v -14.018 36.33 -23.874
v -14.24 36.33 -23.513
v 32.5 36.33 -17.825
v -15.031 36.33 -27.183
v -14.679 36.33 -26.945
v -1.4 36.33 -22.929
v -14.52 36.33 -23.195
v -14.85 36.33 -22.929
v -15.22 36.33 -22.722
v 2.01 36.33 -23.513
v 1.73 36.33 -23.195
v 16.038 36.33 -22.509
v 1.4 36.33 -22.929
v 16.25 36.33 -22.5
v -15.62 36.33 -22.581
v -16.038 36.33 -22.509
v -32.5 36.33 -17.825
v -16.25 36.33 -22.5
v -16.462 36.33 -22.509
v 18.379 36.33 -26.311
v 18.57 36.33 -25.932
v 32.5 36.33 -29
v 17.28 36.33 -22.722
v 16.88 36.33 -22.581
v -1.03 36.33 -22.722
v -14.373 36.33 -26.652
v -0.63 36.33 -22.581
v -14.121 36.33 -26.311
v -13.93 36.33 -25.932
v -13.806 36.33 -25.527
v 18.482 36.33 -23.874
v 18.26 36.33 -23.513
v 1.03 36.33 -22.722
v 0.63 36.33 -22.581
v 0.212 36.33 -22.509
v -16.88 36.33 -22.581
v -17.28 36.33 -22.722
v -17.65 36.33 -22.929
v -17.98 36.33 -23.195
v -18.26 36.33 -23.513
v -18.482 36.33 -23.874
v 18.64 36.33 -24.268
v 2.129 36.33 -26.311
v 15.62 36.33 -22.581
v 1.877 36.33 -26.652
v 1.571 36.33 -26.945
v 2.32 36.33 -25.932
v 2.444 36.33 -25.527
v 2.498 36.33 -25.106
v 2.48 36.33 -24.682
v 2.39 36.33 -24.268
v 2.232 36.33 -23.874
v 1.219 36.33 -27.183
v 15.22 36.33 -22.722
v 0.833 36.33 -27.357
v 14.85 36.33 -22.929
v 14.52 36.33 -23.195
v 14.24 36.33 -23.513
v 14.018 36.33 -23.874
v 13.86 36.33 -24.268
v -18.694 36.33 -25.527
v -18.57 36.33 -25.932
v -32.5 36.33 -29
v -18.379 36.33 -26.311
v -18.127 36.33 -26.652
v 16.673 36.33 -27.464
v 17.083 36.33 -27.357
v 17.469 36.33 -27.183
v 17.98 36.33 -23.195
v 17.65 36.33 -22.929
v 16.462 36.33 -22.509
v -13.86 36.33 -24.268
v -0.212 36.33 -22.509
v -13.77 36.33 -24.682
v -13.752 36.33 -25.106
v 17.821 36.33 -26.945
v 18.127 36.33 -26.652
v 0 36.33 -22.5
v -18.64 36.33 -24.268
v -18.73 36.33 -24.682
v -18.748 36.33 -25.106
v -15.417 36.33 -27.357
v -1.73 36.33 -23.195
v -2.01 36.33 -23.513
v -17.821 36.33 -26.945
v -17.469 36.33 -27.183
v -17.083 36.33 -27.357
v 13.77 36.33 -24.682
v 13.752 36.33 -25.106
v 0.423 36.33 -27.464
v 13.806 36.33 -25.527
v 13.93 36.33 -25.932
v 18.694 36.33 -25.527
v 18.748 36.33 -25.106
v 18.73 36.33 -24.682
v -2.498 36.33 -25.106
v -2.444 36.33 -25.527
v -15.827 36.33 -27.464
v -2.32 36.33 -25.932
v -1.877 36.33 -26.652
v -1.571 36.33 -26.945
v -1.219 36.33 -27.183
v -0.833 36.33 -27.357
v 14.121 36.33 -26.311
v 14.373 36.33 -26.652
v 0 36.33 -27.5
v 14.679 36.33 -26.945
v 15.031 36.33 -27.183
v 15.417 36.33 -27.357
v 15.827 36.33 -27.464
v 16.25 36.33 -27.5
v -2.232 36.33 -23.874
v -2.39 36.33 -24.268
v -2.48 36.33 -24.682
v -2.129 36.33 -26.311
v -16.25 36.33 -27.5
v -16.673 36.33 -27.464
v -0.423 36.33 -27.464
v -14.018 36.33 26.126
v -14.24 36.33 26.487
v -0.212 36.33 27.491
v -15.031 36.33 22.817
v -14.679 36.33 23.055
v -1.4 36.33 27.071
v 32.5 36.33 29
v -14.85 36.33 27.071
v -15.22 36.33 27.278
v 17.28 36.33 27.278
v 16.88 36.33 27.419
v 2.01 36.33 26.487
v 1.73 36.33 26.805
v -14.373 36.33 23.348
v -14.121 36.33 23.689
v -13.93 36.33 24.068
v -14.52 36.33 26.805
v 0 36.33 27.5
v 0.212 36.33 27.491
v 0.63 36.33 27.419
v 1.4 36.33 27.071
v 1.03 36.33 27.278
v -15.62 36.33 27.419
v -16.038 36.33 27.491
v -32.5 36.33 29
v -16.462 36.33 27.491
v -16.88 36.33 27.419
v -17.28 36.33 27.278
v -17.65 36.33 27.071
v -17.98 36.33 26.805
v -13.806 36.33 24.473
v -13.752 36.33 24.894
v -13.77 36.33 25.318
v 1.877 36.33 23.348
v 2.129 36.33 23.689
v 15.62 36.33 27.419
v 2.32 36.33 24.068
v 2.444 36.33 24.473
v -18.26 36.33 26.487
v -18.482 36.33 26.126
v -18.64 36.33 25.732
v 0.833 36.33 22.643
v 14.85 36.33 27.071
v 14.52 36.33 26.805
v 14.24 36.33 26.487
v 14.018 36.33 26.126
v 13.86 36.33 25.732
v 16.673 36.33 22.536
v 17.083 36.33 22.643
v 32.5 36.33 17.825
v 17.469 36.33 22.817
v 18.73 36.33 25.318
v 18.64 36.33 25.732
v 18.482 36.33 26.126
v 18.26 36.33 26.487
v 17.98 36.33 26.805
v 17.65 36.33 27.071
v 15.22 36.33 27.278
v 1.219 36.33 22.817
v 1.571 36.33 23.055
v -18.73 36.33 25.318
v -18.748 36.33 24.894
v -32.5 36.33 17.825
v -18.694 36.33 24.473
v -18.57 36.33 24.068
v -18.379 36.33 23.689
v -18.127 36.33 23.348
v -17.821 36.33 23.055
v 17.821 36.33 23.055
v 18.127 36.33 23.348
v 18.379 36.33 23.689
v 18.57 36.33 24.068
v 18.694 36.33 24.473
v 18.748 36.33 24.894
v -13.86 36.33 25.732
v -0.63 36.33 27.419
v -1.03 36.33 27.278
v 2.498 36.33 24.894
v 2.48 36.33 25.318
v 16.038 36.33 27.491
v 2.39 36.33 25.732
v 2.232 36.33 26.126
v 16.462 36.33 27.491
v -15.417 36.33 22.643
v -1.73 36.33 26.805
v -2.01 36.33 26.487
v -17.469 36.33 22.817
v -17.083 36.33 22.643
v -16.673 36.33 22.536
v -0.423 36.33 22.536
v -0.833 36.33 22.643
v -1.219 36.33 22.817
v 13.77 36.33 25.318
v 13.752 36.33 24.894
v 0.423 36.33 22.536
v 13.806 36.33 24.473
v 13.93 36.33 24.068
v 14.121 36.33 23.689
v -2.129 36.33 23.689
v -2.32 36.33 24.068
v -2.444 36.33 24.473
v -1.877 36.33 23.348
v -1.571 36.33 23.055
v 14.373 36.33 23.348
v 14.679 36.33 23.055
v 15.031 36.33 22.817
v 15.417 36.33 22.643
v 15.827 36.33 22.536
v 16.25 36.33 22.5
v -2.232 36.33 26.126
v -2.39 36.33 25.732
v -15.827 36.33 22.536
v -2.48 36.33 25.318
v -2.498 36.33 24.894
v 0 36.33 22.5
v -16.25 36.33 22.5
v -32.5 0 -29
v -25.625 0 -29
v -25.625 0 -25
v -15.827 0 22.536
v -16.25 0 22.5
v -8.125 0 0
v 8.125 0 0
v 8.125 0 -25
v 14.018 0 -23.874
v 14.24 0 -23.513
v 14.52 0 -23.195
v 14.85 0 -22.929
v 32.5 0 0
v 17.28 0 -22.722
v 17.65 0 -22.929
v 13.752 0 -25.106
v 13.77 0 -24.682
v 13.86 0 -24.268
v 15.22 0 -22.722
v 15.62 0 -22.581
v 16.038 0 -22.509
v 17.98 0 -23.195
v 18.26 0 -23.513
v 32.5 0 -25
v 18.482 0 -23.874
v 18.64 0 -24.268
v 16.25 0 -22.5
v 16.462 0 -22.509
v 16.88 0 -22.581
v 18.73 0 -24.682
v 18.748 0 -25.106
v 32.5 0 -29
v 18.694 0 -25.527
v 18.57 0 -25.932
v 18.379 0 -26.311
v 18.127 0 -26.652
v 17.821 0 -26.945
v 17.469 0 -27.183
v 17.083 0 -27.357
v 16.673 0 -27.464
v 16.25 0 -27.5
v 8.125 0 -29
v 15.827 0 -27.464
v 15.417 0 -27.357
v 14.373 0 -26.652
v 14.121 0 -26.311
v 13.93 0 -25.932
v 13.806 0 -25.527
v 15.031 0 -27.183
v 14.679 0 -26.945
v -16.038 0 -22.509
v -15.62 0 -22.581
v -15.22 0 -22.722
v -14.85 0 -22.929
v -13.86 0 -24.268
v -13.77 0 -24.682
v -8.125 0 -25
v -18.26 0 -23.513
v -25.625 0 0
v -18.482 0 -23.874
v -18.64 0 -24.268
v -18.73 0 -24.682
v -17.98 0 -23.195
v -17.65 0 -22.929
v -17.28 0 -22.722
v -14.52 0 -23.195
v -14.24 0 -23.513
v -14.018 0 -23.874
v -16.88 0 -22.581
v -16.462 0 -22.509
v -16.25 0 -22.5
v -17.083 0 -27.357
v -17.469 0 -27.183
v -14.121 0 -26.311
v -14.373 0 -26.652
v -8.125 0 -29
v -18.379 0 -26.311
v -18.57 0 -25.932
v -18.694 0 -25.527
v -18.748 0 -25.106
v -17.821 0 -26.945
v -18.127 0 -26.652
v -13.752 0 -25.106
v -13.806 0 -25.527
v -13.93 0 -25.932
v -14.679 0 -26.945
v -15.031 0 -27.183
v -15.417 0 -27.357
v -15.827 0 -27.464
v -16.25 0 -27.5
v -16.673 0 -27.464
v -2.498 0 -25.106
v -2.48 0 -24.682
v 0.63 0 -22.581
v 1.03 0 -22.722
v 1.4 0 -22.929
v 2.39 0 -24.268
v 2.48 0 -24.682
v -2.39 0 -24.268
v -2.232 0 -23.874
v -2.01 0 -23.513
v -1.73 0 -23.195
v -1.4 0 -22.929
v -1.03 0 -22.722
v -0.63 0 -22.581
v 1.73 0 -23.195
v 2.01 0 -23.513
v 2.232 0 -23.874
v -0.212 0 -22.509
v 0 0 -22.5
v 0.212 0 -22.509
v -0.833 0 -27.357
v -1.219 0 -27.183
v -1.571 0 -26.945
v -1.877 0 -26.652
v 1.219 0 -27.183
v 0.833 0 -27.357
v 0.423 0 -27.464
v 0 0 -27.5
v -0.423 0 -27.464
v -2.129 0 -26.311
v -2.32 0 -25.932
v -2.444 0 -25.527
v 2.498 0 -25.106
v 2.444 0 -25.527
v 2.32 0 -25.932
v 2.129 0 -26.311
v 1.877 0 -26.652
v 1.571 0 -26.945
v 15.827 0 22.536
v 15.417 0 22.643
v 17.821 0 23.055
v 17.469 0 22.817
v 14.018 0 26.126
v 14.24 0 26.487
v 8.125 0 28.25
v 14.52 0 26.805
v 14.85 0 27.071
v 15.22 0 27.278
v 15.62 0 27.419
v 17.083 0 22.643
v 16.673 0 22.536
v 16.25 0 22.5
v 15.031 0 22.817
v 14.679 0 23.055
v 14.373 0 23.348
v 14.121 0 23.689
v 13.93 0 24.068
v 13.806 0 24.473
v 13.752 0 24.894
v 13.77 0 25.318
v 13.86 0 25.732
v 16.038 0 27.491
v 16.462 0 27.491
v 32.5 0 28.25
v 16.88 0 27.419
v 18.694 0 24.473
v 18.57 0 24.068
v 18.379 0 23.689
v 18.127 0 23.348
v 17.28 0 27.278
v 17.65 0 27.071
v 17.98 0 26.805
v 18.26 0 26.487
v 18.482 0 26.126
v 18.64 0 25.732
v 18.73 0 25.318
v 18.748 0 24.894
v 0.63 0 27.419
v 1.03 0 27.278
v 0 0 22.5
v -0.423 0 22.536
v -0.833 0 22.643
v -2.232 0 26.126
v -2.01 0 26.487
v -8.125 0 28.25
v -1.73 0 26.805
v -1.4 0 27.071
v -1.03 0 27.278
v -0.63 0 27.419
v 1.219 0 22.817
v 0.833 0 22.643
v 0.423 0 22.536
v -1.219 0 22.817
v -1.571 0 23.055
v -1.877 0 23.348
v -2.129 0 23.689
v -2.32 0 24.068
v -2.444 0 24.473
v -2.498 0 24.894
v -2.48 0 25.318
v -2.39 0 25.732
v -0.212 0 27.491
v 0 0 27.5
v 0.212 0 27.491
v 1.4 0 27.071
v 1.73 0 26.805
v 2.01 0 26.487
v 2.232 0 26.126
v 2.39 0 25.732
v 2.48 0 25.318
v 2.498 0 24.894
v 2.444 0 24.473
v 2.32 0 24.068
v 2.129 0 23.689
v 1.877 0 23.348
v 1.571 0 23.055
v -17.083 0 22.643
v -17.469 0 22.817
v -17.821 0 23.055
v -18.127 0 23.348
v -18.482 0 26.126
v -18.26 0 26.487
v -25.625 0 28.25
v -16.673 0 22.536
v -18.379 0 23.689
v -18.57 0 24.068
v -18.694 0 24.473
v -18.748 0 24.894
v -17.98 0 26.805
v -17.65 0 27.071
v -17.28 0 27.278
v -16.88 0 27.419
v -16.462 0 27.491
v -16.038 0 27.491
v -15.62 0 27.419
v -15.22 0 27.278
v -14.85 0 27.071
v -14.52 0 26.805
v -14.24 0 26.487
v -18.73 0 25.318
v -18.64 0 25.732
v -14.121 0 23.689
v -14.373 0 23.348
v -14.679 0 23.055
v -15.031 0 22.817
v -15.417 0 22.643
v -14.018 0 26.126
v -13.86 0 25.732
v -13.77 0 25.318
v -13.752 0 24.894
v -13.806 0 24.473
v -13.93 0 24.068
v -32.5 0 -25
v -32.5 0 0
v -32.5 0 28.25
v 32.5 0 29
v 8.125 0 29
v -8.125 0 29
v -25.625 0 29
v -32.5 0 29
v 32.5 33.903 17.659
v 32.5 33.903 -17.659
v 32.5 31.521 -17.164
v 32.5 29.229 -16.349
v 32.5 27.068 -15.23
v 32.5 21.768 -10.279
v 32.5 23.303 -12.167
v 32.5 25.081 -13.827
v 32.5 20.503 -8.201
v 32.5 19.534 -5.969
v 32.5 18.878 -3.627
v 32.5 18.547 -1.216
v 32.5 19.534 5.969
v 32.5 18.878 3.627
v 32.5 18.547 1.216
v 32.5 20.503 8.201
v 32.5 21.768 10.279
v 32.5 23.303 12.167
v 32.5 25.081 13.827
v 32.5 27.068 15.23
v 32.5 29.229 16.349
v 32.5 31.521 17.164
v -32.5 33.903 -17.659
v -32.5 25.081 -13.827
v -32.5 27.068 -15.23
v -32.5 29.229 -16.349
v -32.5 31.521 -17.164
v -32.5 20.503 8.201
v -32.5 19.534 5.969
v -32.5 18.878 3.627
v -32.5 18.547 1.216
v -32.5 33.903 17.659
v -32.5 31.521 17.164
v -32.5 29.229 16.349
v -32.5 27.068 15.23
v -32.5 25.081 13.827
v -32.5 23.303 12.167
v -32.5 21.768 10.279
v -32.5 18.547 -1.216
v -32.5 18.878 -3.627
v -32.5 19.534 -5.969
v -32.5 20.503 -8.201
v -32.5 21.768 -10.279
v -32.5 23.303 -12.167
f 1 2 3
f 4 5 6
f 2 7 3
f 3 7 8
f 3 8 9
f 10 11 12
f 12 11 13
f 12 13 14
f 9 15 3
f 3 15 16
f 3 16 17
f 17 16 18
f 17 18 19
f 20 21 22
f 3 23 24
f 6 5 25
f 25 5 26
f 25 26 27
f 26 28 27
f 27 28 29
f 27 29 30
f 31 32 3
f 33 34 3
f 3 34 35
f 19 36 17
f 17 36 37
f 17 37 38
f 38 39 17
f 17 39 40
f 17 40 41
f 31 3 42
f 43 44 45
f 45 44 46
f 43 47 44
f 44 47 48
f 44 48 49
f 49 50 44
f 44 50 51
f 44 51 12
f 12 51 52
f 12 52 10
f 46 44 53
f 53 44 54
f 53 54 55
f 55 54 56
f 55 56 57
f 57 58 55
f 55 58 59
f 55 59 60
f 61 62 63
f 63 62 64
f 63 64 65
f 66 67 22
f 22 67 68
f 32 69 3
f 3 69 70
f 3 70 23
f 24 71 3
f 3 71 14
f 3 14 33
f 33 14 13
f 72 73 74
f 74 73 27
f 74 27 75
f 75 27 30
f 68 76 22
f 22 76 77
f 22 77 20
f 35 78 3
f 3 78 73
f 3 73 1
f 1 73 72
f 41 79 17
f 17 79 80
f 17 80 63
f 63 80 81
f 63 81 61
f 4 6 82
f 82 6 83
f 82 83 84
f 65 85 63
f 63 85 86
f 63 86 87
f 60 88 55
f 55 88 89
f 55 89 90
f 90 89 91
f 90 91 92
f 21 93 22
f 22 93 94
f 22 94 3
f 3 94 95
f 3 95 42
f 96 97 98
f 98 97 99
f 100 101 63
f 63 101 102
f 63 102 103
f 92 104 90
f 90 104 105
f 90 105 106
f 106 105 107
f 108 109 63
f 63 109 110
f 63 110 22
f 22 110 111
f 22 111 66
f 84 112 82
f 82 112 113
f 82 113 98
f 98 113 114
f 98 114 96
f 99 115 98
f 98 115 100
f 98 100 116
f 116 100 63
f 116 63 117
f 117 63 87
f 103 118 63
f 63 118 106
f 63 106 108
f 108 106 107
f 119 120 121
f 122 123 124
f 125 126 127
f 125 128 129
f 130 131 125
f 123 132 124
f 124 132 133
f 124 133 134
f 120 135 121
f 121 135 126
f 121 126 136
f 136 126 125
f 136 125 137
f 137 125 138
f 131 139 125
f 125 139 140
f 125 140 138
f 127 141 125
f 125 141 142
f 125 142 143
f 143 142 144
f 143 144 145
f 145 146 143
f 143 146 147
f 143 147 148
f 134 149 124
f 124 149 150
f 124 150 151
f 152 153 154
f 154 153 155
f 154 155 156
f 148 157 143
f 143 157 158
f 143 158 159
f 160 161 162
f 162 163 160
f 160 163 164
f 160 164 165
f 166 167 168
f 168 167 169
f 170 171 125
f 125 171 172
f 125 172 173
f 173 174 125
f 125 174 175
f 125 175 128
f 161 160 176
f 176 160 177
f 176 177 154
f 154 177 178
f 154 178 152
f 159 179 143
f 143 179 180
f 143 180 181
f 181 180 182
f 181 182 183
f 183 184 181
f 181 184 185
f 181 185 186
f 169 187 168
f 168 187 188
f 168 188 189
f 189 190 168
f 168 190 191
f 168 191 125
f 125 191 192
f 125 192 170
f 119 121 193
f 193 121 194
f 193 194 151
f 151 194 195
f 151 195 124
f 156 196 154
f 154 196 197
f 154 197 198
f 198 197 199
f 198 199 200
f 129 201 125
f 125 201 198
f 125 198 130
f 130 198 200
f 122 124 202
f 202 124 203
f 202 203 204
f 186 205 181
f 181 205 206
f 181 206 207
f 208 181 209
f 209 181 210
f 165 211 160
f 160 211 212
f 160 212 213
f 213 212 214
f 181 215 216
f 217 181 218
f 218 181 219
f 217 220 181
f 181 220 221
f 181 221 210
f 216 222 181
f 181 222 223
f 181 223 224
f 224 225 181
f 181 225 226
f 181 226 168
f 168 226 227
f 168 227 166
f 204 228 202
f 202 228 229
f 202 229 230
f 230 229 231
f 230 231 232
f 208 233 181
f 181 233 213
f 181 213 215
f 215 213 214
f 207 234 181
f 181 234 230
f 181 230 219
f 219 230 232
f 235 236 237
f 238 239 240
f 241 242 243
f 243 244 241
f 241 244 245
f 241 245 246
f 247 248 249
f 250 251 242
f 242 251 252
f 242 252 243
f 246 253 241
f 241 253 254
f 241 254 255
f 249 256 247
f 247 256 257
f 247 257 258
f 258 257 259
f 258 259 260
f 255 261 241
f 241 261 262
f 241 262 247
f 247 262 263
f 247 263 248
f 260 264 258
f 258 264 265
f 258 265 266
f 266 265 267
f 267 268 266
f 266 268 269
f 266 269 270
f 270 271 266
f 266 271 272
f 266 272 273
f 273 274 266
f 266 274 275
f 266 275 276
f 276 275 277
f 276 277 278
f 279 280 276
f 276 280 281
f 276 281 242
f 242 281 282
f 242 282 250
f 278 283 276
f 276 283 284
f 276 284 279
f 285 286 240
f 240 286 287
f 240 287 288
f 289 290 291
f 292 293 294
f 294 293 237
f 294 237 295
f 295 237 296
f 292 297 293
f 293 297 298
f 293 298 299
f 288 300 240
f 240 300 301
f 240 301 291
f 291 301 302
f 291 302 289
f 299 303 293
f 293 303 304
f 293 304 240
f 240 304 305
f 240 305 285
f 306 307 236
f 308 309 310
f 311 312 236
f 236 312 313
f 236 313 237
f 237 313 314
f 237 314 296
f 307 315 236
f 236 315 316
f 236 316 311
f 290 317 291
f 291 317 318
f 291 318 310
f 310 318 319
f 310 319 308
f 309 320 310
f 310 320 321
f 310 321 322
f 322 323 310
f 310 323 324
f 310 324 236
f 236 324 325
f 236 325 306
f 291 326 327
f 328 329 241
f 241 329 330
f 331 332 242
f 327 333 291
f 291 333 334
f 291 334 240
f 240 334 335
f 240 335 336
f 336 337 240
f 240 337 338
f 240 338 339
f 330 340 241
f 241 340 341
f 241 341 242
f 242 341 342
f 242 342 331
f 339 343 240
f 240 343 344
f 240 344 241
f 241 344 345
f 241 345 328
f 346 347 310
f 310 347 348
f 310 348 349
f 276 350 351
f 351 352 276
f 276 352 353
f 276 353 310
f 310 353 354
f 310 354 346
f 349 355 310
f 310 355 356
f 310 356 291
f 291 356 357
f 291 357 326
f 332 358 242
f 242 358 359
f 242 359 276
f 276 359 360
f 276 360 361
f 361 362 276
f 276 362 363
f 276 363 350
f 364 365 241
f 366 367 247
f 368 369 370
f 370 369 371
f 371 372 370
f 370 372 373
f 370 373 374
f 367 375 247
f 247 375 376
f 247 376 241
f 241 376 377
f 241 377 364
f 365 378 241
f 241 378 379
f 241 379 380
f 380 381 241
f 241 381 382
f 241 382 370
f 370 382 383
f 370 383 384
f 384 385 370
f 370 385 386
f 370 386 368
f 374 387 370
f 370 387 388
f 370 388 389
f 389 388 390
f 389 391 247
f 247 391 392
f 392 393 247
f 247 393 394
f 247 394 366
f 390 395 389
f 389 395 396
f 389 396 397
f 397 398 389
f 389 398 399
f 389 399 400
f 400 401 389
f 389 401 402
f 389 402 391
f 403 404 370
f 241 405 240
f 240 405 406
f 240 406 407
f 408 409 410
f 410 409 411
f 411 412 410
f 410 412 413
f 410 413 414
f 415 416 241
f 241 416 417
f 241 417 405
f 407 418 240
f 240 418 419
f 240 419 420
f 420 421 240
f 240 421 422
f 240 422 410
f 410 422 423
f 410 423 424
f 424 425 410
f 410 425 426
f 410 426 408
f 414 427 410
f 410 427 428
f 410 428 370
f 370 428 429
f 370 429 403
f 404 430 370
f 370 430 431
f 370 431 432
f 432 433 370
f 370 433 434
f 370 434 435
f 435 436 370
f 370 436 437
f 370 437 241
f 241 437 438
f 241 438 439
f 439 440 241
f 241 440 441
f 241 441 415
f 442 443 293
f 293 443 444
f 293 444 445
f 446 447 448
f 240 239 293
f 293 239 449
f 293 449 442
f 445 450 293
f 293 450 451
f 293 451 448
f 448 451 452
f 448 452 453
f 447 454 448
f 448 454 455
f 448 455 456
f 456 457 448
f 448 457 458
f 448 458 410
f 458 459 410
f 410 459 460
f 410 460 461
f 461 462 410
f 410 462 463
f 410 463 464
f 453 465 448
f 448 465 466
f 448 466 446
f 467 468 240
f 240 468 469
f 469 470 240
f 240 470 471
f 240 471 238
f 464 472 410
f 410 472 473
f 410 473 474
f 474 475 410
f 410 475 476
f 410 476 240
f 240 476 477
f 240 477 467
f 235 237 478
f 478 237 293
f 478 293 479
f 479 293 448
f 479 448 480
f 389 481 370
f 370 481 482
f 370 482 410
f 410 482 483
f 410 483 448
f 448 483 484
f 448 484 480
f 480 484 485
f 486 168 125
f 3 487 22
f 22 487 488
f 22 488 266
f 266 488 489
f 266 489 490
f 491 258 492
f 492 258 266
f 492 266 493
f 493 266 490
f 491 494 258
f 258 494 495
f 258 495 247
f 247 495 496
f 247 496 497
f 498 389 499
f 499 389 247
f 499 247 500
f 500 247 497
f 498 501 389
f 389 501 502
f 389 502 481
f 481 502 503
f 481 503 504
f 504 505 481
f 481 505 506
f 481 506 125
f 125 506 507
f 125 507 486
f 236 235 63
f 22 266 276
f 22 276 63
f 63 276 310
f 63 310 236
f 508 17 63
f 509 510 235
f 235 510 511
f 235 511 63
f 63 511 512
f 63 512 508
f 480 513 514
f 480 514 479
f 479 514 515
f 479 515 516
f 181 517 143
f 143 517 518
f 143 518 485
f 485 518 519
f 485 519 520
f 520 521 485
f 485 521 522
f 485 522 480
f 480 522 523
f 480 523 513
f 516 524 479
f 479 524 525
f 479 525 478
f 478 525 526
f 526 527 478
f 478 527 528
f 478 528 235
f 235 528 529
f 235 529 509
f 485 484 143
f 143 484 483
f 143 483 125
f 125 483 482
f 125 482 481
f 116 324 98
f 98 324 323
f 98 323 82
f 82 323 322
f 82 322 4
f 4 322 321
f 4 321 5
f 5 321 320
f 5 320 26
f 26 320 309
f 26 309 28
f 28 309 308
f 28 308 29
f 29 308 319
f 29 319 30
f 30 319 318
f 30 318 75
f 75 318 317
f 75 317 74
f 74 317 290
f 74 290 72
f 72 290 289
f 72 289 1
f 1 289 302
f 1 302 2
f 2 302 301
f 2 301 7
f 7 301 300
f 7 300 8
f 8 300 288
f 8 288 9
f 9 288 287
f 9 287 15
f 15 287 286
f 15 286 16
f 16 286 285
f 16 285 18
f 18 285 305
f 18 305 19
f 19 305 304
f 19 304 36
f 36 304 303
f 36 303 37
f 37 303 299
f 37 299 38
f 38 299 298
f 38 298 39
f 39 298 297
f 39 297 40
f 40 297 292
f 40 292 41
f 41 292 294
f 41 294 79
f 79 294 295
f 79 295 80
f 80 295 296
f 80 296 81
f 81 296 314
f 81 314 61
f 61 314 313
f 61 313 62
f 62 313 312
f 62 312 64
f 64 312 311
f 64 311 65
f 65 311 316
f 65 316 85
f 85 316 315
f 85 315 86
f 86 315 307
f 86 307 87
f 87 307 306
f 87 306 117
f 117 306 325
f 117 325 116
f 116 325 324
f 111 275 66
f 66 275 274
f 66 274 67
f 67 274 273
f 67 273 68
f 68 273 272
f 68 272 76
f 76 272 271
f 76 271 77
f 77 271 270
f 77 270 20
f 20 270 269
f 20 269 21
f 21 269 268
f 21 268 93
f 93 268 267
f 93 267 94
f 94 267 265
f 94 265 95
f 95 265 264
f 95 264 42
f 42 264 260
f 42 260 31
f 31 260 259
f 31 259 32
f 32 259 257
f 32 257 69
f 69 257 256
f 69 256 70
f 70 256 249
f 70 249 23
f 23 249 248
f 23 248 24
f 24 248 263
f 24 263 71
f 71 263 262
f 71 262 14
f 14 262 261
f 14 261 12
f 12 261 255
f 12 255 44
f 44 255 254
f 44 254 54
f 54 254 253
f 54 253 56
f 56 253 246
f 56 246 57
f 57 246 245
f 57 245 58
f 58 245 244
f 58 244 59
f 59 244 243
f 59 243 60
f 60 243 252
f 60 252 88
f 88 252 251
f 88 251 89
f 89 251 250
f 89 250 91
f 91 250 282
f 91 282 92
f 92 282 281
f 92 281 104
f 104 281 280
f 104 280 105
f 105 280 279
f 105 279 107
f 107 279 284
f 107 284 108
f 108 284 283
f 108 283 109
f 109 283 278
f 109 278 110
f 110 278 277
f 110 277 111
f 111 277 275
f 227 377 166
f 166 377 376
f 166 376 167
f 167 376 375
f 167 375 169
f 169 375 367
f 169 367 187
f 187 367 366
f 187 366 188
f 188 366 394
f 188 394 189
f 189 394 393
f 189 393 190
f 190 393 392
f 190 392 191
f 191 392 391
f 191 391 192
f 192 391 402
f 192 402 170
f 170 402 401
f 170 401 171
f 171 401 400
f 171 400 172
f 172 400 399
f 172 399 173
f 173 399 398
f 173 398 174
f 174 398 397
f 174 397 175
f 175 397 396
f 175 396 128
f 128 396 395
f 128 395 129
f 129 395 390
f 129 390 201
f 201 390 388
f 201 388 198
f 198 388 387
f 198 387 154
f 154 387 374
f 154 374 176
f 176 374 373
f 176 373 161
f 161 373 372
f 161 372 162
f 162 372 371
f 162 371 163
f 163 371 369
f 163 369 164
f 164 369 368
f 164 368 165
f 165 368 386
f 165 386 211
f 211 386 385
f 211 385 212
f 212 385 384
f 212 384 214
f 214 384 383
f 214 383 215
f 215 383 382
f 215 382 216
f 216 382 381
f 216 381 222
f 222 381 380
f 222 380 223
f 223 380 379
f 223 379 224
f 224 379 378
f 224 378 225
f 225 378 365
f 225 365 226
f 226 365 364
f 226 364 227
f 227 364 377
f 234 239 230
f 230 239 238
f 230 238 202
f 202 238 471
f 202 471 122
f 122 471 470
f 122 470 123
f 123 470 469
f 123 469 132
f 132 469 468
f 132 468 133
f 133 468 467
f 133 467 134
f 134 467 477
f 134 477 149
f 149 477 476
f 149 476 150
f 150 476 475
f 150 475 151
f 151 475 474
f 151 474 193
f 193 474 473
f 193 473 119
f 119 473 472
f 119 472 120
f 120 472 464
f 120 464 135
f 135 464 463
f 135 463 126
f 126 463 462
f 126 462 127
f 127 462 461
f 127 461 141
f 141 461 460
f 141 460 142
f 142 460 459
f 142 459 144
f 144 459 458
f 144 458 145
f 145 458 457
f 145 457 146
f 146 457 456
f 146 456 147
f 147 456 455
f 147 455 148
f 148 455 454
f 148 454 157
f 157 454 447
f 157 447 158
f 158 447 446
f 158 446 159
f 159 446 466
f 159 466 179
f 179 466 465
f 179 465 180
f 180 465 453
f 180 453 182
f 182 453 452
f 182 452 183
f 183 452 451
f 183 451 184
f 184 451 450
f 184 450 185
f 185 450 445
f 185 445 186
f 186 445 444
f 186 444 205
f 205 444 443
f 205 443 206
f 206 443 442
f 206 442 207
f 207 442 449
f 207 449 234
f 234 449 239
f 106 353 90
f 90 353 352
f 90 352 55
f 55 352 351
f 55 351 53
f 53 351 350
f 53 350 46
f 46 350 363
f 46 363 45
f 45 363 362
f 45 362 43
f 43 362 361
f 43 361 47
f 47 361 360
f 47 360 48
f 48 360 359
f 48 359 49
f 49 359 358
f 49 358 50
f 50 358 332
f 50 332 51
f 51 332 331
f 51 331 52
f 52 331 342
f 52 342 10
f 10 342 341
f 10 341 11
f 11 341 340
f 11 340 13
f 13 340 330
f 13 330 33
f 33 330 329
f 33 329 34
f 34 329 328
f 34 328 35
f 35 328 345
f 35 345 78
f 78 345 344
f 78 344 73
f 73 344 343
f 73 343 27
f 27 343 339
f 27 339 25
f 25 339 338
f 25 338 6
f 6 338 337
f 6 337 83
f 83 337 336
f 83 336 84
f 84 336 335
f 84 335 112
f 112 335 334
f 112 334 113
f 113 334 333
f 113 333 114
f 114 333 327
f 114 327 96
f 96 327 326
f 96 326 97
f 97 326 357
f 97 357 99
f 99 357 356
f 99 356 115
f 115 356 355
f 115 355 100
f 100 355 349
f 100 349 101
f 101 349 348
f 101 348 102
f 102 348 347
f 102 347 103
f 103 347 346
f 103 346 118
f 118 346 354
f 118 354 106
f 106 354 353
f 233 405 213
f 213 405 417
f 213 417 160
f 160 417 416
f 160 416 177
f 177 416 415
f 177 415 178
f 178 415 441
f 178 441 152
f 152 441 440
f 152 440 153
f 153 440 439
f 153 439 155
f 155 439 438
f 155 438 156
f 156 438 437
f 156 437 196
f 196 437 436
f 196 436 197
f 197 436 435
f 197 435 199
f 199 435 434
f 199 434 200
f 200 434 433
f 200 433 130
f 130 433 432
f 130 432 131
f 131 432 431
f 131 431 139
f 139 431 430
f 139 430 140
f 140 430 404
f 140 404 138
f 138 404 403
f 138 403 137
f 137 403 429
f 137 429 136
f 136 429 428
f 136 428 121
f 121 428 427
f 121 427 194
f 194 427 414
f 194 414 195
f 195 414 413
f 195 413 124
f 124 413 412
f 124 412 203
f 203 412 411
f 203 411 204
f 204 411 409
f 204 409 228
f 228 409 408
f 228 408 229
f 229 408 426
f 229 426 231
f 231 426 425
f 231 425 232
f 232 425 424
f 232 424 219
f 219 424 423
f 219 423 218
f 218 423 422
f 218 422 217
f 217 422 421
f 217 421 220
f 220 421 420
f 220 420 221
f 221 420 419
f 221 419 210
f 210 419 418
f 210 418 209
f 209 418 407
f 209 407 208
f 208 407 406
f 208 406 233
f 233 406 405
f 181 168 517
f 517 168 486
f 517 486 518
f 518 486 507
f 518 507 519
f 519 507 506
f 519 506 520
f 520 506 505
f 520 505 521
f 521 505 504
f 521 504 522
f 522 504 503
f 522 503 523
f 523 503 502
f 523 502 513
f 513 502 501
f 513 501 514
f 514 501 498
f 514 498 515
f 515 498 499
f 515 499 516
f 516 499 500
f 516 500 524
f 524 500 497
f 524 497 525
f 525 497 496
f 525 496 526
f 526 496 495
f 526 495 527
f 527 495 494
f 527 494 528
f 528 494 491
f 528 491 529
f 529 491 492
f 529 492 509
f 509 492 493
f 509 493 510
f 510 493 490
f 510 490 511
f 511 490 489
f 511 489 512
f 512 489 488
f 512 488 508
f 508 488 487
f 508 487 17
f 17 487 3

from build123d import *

# Parameters (mm, degrees)
SKETCH1_W           = 65
SKETCH1_H           = 58
SKETCH1_R           = 2.5
BOSS_EXTRUDE1_DEPTH = 36.33
SKETCH2_R           = 17.825
CUT_EXTRUDE1_DEPTH  = 80.911631819


with BuildPart() as part:
    # Sketch1 → Boss-Extrude1 (new body)
    with BuildSketch(Plane(origin=(0, 0, 0), x_dir=(1, 0, 0), z_dir=(0, 1, 0))):
        Rectangle(SKETCH1_W, SKETCH1_H)
        with Locations(Location((-16.25, 25, 0), (0, 0, 270))):
            Circle(SKETCH1_R, mode=Mode.SUBTRACT)
        with Locations(Location((16.25, 25, 0), (0, 0, 270))):
            Circle(SKETCH1_R, mode=Mode.SUBTRACT)
        with Locations(Location((16.25, -25, 0), (0, 0, 90))):
            Circle(SKETCH1_R, mode=Mode.SUBTRACT)
        with Locations(Location((-16.25, -25, 0), (0, 0, 90))):
            Circle(SKETCH1_R, mode=Mode.SUBTRACT)
        with Locations(Location((0, 25, 0), (0, 0, 270))):
            Circle(SKETCH1_R, mode=Mode.SUBTRACT)
        with Locations(Location((0, -25, 0), (0, 0, 270))):
            Circle(SKETCH1_R, mode=Mode.SUBTRACT)
    extrude(amount=BOSS_EXTRUDE1_DEPTH)

    # Sketch2 → Cut-Extrude1 (cut, through all)
    with BuildSketch(Plane(origin=(32.5, 0, 0), x_dir=(0, 0, -1), z_dir=(1, 0, 0))):
        with Locations((0, 36.33)):
            Circle(SKETCH2_R)
    extrude(amount=-CUT_EXTRUDE1_DEPTH, mode=Mode.SUBTRACT)


solid = part.part
